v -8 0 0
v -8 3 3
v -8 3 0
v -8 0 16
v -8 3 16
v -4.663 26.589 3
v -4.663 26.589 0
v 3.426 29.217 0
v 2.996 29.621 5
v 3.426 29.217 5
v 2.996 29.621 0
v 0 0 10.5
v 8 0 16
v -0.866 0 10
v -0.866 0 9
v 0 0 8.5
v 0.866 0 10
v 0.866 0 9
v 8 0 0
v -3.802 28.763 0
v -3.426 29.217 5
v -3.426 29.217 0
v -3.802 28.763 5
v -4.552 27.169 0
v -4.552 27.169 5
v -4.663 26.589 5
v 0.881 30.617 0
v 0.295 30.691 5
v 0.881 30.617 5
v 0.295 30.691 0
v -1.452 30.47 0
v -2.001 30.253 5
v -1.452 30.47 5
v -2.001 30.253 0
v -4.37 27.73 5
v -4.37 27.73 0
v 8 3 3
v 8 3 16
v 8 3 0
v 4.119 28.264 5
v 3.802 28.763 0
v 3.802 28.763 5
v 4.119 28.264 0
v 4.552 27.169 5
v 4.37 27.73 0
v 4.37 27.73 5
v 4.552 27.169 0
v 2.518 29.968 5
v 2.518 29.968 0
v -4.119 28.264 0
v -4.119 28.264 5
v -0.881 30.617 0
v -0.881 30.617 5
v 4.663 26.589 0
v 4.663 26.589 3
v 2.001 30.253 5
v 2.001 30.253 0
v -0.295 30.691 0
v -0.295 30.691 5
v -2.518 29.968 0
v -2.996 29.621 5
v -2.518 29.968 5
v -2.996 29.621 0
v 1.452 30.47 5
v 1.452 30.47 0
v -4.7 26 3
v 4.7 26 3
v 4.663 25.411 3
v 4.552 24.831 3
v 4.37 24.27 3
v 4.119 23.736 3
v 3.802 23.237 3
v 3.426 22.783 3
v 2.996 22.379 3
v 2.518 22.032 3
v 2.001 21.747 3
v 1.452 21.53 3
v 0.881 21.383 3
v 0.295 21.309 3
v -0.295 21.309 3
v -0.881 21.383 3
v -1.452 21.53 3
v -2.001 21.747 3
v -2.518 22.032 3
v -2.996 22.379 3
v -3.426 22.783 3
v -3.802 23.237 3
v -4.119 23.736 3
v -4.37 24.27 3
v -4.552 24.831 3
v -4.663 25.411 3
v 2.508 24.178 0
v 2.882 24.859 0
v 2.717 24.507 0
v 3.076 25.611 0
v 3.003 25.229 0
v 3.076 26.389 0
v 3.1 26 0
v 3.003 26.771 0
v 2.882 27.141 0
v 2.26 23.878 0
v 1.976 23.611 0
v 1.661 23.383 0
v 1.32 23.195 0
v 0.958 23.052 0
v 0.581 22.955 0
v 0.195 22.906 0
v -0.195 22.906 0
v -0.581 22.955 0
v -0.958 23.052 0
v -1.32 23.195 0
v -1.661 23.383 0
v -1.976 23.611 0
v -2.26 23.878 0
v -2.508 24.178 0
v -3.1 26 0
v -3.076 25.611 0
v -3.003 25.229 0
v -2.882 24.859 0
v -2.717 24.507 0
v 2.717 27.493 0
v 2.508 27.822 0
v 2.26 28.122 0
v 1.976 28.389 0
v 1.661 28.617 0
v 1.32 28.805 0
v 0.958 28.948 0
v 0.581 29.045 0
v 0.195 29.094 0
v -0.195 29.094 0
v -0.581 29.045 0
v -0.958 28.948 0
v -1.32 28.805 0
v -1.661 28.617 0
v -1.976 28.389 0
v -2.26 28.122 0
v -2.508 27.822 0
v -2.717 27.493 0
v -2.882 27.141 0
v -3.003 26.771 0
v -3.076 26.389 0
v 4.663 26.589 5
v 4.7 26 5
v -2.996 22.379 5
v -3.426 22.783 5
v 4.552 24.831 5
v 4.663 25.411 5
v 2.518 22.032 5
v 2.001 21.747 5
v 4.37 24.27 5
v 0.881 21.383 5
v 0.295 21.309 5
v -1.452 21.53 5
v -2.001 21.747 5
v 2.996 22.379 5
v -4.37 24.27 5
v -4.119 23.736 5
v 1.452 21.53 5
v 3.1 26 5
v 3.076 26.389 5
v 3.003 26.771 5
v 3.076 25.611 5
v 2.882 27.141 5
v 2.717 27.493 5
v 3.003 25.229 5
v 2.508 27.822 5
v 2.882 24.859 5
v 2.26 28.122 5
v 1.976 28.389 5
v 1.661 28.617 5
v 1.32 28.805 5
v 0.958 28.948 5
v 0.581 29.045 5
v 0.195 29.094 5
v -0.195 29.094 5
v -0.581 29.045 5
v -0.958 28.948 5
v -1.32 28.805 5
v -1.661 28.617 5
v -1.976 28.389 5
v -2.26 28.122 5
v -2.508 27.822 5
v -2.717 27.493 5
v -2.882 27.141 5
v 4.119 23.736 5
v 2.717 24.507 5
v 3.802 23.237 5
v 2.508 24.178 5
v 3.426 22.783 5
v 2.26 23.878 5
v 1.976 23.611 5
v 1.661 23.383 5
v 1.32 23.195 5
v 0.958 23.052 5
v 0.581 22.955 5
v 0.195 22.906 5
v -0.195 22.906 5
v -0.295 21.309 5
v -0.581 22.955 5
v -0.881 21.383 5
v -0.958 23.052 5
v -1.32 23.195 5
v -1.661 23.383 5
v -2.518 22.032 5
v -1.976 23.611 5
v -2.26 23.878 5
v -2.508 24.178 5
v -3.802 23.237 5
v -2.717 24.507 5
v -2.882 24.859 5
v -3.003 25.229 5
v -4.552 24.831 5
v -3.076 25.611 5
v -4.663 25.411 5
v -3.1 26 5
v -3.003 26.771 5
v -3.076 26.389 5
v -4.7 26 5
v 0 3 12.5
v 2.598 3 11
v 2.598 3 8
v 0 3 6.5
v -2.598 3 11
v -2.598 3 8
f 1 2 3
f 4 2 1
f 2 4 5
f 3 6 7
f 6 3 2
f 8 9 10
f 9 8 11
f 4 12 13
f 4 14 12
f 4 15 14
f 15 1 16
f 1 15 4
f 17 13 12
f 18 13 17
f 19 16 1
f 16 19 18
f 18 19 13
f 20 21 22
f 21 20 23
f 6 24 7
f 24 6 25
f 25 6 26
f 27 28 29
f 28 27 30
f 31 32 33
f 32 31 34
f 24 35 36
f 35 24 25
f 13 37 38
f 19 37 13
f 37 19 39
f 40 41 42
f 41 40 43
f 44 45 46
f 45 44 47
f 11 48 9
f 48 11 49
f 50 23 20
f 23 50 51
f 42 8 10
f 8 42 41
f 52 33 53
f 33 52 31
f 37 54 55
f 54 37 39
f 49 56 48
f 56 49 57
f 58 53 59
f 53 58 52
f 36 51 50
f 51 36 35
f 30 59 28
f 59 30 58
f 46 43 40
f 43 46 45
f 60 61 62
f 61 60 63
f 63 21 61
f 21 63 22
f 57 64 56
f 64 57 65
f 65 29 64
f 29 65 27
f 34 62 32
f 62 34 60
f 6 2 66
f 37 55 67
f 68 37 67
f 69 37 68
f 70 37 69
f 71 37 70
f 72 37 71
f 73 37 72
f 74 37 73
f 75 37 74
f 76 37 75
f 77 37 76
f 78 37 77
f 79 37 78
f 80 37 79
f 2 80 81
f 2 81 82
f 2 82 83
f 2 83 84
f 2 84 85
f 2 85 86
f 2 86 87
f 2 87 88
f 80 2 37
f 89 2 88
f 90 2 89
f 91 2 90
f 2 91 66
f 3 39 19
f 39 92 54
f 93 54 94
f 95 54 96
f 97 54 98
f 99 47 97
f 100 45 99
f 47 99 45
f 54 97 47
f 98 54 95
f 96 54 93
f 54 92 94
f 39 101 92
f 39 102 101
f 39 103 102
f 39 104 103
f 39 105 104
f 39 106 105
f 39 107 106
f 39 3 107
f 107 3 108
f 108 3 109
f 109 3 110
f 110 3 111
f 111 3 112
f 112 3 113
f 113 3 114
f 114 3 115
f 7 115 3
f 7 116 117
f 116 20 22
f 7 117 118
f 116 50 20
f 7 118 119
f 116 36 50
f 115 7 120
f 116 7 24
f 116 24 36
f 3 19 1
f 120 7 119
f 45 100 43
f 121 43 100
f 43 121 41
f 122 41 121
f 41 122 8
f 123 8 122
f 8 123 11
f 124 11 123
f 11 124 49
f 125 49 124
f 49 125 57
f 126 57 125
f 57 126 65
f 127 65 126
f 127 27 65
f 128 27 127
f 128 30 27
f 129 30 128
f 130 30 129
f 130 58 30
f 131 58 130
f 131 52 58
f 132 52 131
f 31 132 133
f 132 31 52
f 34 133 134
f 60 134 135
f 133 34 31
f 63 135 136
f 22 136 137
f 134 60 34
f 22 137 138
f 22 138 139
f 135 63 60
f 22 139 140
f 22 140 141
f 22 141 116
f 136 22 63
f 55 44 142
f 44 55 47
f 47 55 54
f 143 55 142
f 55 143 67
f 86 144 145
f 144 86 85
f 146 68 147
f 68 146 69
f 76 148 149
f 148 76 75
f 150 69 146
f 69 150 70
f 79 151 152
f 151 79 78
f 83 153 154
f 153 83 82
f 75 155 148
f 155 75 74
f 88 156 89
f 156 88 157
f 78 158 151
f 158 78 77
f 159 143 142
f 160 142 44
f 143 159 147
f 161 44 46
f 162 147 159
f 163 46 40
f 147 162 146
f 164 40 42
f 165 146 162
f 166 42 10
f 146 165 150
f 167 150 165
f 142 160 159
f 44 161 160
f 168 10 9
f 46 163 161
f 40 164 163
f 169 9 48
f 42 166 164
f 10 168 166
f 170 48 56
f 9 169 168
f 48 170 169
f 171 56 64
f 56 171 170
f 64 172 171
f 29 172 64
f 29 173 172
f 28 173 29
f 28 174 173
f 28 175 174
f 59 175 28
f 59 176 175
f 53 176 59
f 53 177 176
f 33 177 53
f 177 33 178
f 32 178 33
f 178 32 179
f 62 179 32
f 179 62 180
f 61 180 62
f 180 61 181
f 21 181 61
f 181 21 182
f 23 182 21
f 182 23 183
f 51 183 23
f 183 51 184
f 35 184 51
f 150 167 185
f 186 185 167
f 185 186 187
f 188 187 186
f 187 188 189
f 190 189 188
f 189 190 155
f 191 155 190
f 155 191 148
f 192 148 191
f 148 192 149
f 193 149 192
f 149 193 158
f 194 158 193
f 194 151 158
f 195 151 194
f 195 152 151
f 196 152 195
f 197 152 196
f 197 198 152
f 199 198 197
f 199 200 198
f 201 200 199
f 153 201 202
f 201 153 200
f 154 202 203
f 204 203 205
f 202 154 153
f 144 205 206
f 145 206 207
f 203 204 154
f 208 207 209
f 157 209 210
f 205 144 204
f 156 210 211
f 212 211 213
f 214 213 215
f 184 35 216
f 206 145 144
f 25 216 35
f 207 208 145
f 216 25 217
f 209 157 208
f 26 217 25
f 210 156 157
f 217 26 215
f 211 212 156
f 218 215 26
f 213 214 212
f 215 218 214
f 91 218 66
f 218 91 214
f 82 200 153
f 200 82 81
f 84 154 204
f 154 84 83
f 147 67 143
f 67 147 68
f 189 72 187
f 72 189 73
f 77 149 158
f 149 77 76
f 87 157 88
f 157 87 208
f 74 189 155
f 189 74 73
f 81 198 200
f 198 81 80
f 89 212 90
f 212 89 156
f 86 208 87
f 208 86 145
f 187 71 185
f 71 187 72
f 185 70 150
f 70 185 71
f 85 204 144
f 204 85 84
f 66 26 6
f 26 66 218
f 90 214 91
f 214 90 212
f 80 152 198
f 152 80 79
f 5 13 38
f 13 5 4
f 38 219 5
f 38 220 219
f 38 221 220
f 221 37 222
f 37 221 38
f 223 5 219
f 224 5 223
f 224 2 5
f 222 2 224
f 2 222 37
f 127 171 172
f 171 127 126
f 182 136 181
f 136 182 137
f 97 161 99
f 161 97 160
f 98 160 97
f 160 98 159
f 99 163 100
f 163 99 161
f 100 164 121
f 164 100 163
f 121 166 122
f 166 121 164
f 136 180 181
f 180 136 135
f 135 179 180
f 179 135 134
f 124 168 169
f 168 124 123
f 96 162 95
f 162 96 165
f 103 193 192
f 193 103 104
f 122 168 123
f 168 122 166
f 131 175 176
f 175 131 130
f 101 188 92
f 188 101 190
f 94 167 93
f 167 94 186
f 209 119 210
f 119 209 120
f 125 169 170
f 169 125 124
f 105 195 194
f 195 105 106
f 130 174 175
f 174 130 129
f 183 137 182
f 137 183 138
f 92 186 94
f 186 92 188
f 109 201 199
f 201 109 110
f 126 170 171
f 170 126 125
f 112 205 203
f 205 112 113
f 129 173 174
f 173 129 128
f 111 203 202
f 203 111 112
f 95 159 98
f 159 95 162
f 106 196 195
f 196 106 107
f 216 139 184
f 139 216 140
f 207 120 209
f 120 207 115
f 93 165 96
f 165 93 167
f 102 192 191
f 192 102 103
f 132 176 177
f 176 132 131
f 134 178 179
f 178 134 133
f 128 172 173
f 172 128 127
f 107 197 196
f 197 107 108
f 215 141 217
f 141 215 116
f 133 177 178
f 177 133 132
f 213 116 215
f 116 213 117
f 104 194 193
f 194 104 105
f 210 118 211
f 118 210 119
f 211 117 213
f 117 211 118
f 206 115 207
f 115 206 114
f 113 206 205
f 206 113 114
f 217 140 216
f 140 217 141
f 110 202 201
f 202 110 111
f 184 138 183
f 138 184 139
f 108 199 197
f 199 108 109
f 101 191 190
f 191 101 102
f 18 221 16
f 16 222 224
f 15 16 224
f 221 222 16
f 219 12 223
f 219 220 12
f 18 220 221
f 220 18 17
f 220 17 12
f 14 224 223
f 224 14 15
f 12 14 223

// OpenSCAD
top_translate = [0, 26, 0];
//
difference() {
  union() {
    hull() {
      translate(top_translate) cylinder(d = 9.4, h = 3, $fn = 50);
      translate([- 8, 0, 0]) cube([16, 3, 3]);
    }
    translate(top_translate) cylinder(d = 9.4, h = 5, $fn = 50);
    translate([- 8, 0, 0]) cube([16, 3, 16]);
  }
  translate(top_translate)  cylinder(d = 6.2, h = 6, $fn = 50);
  translate([0, 0, 9.5]) rotate([- 90, 90, 0]) cylinder(r2 = 3, , r1 = 1, h = 3, $fn = 6);
}
